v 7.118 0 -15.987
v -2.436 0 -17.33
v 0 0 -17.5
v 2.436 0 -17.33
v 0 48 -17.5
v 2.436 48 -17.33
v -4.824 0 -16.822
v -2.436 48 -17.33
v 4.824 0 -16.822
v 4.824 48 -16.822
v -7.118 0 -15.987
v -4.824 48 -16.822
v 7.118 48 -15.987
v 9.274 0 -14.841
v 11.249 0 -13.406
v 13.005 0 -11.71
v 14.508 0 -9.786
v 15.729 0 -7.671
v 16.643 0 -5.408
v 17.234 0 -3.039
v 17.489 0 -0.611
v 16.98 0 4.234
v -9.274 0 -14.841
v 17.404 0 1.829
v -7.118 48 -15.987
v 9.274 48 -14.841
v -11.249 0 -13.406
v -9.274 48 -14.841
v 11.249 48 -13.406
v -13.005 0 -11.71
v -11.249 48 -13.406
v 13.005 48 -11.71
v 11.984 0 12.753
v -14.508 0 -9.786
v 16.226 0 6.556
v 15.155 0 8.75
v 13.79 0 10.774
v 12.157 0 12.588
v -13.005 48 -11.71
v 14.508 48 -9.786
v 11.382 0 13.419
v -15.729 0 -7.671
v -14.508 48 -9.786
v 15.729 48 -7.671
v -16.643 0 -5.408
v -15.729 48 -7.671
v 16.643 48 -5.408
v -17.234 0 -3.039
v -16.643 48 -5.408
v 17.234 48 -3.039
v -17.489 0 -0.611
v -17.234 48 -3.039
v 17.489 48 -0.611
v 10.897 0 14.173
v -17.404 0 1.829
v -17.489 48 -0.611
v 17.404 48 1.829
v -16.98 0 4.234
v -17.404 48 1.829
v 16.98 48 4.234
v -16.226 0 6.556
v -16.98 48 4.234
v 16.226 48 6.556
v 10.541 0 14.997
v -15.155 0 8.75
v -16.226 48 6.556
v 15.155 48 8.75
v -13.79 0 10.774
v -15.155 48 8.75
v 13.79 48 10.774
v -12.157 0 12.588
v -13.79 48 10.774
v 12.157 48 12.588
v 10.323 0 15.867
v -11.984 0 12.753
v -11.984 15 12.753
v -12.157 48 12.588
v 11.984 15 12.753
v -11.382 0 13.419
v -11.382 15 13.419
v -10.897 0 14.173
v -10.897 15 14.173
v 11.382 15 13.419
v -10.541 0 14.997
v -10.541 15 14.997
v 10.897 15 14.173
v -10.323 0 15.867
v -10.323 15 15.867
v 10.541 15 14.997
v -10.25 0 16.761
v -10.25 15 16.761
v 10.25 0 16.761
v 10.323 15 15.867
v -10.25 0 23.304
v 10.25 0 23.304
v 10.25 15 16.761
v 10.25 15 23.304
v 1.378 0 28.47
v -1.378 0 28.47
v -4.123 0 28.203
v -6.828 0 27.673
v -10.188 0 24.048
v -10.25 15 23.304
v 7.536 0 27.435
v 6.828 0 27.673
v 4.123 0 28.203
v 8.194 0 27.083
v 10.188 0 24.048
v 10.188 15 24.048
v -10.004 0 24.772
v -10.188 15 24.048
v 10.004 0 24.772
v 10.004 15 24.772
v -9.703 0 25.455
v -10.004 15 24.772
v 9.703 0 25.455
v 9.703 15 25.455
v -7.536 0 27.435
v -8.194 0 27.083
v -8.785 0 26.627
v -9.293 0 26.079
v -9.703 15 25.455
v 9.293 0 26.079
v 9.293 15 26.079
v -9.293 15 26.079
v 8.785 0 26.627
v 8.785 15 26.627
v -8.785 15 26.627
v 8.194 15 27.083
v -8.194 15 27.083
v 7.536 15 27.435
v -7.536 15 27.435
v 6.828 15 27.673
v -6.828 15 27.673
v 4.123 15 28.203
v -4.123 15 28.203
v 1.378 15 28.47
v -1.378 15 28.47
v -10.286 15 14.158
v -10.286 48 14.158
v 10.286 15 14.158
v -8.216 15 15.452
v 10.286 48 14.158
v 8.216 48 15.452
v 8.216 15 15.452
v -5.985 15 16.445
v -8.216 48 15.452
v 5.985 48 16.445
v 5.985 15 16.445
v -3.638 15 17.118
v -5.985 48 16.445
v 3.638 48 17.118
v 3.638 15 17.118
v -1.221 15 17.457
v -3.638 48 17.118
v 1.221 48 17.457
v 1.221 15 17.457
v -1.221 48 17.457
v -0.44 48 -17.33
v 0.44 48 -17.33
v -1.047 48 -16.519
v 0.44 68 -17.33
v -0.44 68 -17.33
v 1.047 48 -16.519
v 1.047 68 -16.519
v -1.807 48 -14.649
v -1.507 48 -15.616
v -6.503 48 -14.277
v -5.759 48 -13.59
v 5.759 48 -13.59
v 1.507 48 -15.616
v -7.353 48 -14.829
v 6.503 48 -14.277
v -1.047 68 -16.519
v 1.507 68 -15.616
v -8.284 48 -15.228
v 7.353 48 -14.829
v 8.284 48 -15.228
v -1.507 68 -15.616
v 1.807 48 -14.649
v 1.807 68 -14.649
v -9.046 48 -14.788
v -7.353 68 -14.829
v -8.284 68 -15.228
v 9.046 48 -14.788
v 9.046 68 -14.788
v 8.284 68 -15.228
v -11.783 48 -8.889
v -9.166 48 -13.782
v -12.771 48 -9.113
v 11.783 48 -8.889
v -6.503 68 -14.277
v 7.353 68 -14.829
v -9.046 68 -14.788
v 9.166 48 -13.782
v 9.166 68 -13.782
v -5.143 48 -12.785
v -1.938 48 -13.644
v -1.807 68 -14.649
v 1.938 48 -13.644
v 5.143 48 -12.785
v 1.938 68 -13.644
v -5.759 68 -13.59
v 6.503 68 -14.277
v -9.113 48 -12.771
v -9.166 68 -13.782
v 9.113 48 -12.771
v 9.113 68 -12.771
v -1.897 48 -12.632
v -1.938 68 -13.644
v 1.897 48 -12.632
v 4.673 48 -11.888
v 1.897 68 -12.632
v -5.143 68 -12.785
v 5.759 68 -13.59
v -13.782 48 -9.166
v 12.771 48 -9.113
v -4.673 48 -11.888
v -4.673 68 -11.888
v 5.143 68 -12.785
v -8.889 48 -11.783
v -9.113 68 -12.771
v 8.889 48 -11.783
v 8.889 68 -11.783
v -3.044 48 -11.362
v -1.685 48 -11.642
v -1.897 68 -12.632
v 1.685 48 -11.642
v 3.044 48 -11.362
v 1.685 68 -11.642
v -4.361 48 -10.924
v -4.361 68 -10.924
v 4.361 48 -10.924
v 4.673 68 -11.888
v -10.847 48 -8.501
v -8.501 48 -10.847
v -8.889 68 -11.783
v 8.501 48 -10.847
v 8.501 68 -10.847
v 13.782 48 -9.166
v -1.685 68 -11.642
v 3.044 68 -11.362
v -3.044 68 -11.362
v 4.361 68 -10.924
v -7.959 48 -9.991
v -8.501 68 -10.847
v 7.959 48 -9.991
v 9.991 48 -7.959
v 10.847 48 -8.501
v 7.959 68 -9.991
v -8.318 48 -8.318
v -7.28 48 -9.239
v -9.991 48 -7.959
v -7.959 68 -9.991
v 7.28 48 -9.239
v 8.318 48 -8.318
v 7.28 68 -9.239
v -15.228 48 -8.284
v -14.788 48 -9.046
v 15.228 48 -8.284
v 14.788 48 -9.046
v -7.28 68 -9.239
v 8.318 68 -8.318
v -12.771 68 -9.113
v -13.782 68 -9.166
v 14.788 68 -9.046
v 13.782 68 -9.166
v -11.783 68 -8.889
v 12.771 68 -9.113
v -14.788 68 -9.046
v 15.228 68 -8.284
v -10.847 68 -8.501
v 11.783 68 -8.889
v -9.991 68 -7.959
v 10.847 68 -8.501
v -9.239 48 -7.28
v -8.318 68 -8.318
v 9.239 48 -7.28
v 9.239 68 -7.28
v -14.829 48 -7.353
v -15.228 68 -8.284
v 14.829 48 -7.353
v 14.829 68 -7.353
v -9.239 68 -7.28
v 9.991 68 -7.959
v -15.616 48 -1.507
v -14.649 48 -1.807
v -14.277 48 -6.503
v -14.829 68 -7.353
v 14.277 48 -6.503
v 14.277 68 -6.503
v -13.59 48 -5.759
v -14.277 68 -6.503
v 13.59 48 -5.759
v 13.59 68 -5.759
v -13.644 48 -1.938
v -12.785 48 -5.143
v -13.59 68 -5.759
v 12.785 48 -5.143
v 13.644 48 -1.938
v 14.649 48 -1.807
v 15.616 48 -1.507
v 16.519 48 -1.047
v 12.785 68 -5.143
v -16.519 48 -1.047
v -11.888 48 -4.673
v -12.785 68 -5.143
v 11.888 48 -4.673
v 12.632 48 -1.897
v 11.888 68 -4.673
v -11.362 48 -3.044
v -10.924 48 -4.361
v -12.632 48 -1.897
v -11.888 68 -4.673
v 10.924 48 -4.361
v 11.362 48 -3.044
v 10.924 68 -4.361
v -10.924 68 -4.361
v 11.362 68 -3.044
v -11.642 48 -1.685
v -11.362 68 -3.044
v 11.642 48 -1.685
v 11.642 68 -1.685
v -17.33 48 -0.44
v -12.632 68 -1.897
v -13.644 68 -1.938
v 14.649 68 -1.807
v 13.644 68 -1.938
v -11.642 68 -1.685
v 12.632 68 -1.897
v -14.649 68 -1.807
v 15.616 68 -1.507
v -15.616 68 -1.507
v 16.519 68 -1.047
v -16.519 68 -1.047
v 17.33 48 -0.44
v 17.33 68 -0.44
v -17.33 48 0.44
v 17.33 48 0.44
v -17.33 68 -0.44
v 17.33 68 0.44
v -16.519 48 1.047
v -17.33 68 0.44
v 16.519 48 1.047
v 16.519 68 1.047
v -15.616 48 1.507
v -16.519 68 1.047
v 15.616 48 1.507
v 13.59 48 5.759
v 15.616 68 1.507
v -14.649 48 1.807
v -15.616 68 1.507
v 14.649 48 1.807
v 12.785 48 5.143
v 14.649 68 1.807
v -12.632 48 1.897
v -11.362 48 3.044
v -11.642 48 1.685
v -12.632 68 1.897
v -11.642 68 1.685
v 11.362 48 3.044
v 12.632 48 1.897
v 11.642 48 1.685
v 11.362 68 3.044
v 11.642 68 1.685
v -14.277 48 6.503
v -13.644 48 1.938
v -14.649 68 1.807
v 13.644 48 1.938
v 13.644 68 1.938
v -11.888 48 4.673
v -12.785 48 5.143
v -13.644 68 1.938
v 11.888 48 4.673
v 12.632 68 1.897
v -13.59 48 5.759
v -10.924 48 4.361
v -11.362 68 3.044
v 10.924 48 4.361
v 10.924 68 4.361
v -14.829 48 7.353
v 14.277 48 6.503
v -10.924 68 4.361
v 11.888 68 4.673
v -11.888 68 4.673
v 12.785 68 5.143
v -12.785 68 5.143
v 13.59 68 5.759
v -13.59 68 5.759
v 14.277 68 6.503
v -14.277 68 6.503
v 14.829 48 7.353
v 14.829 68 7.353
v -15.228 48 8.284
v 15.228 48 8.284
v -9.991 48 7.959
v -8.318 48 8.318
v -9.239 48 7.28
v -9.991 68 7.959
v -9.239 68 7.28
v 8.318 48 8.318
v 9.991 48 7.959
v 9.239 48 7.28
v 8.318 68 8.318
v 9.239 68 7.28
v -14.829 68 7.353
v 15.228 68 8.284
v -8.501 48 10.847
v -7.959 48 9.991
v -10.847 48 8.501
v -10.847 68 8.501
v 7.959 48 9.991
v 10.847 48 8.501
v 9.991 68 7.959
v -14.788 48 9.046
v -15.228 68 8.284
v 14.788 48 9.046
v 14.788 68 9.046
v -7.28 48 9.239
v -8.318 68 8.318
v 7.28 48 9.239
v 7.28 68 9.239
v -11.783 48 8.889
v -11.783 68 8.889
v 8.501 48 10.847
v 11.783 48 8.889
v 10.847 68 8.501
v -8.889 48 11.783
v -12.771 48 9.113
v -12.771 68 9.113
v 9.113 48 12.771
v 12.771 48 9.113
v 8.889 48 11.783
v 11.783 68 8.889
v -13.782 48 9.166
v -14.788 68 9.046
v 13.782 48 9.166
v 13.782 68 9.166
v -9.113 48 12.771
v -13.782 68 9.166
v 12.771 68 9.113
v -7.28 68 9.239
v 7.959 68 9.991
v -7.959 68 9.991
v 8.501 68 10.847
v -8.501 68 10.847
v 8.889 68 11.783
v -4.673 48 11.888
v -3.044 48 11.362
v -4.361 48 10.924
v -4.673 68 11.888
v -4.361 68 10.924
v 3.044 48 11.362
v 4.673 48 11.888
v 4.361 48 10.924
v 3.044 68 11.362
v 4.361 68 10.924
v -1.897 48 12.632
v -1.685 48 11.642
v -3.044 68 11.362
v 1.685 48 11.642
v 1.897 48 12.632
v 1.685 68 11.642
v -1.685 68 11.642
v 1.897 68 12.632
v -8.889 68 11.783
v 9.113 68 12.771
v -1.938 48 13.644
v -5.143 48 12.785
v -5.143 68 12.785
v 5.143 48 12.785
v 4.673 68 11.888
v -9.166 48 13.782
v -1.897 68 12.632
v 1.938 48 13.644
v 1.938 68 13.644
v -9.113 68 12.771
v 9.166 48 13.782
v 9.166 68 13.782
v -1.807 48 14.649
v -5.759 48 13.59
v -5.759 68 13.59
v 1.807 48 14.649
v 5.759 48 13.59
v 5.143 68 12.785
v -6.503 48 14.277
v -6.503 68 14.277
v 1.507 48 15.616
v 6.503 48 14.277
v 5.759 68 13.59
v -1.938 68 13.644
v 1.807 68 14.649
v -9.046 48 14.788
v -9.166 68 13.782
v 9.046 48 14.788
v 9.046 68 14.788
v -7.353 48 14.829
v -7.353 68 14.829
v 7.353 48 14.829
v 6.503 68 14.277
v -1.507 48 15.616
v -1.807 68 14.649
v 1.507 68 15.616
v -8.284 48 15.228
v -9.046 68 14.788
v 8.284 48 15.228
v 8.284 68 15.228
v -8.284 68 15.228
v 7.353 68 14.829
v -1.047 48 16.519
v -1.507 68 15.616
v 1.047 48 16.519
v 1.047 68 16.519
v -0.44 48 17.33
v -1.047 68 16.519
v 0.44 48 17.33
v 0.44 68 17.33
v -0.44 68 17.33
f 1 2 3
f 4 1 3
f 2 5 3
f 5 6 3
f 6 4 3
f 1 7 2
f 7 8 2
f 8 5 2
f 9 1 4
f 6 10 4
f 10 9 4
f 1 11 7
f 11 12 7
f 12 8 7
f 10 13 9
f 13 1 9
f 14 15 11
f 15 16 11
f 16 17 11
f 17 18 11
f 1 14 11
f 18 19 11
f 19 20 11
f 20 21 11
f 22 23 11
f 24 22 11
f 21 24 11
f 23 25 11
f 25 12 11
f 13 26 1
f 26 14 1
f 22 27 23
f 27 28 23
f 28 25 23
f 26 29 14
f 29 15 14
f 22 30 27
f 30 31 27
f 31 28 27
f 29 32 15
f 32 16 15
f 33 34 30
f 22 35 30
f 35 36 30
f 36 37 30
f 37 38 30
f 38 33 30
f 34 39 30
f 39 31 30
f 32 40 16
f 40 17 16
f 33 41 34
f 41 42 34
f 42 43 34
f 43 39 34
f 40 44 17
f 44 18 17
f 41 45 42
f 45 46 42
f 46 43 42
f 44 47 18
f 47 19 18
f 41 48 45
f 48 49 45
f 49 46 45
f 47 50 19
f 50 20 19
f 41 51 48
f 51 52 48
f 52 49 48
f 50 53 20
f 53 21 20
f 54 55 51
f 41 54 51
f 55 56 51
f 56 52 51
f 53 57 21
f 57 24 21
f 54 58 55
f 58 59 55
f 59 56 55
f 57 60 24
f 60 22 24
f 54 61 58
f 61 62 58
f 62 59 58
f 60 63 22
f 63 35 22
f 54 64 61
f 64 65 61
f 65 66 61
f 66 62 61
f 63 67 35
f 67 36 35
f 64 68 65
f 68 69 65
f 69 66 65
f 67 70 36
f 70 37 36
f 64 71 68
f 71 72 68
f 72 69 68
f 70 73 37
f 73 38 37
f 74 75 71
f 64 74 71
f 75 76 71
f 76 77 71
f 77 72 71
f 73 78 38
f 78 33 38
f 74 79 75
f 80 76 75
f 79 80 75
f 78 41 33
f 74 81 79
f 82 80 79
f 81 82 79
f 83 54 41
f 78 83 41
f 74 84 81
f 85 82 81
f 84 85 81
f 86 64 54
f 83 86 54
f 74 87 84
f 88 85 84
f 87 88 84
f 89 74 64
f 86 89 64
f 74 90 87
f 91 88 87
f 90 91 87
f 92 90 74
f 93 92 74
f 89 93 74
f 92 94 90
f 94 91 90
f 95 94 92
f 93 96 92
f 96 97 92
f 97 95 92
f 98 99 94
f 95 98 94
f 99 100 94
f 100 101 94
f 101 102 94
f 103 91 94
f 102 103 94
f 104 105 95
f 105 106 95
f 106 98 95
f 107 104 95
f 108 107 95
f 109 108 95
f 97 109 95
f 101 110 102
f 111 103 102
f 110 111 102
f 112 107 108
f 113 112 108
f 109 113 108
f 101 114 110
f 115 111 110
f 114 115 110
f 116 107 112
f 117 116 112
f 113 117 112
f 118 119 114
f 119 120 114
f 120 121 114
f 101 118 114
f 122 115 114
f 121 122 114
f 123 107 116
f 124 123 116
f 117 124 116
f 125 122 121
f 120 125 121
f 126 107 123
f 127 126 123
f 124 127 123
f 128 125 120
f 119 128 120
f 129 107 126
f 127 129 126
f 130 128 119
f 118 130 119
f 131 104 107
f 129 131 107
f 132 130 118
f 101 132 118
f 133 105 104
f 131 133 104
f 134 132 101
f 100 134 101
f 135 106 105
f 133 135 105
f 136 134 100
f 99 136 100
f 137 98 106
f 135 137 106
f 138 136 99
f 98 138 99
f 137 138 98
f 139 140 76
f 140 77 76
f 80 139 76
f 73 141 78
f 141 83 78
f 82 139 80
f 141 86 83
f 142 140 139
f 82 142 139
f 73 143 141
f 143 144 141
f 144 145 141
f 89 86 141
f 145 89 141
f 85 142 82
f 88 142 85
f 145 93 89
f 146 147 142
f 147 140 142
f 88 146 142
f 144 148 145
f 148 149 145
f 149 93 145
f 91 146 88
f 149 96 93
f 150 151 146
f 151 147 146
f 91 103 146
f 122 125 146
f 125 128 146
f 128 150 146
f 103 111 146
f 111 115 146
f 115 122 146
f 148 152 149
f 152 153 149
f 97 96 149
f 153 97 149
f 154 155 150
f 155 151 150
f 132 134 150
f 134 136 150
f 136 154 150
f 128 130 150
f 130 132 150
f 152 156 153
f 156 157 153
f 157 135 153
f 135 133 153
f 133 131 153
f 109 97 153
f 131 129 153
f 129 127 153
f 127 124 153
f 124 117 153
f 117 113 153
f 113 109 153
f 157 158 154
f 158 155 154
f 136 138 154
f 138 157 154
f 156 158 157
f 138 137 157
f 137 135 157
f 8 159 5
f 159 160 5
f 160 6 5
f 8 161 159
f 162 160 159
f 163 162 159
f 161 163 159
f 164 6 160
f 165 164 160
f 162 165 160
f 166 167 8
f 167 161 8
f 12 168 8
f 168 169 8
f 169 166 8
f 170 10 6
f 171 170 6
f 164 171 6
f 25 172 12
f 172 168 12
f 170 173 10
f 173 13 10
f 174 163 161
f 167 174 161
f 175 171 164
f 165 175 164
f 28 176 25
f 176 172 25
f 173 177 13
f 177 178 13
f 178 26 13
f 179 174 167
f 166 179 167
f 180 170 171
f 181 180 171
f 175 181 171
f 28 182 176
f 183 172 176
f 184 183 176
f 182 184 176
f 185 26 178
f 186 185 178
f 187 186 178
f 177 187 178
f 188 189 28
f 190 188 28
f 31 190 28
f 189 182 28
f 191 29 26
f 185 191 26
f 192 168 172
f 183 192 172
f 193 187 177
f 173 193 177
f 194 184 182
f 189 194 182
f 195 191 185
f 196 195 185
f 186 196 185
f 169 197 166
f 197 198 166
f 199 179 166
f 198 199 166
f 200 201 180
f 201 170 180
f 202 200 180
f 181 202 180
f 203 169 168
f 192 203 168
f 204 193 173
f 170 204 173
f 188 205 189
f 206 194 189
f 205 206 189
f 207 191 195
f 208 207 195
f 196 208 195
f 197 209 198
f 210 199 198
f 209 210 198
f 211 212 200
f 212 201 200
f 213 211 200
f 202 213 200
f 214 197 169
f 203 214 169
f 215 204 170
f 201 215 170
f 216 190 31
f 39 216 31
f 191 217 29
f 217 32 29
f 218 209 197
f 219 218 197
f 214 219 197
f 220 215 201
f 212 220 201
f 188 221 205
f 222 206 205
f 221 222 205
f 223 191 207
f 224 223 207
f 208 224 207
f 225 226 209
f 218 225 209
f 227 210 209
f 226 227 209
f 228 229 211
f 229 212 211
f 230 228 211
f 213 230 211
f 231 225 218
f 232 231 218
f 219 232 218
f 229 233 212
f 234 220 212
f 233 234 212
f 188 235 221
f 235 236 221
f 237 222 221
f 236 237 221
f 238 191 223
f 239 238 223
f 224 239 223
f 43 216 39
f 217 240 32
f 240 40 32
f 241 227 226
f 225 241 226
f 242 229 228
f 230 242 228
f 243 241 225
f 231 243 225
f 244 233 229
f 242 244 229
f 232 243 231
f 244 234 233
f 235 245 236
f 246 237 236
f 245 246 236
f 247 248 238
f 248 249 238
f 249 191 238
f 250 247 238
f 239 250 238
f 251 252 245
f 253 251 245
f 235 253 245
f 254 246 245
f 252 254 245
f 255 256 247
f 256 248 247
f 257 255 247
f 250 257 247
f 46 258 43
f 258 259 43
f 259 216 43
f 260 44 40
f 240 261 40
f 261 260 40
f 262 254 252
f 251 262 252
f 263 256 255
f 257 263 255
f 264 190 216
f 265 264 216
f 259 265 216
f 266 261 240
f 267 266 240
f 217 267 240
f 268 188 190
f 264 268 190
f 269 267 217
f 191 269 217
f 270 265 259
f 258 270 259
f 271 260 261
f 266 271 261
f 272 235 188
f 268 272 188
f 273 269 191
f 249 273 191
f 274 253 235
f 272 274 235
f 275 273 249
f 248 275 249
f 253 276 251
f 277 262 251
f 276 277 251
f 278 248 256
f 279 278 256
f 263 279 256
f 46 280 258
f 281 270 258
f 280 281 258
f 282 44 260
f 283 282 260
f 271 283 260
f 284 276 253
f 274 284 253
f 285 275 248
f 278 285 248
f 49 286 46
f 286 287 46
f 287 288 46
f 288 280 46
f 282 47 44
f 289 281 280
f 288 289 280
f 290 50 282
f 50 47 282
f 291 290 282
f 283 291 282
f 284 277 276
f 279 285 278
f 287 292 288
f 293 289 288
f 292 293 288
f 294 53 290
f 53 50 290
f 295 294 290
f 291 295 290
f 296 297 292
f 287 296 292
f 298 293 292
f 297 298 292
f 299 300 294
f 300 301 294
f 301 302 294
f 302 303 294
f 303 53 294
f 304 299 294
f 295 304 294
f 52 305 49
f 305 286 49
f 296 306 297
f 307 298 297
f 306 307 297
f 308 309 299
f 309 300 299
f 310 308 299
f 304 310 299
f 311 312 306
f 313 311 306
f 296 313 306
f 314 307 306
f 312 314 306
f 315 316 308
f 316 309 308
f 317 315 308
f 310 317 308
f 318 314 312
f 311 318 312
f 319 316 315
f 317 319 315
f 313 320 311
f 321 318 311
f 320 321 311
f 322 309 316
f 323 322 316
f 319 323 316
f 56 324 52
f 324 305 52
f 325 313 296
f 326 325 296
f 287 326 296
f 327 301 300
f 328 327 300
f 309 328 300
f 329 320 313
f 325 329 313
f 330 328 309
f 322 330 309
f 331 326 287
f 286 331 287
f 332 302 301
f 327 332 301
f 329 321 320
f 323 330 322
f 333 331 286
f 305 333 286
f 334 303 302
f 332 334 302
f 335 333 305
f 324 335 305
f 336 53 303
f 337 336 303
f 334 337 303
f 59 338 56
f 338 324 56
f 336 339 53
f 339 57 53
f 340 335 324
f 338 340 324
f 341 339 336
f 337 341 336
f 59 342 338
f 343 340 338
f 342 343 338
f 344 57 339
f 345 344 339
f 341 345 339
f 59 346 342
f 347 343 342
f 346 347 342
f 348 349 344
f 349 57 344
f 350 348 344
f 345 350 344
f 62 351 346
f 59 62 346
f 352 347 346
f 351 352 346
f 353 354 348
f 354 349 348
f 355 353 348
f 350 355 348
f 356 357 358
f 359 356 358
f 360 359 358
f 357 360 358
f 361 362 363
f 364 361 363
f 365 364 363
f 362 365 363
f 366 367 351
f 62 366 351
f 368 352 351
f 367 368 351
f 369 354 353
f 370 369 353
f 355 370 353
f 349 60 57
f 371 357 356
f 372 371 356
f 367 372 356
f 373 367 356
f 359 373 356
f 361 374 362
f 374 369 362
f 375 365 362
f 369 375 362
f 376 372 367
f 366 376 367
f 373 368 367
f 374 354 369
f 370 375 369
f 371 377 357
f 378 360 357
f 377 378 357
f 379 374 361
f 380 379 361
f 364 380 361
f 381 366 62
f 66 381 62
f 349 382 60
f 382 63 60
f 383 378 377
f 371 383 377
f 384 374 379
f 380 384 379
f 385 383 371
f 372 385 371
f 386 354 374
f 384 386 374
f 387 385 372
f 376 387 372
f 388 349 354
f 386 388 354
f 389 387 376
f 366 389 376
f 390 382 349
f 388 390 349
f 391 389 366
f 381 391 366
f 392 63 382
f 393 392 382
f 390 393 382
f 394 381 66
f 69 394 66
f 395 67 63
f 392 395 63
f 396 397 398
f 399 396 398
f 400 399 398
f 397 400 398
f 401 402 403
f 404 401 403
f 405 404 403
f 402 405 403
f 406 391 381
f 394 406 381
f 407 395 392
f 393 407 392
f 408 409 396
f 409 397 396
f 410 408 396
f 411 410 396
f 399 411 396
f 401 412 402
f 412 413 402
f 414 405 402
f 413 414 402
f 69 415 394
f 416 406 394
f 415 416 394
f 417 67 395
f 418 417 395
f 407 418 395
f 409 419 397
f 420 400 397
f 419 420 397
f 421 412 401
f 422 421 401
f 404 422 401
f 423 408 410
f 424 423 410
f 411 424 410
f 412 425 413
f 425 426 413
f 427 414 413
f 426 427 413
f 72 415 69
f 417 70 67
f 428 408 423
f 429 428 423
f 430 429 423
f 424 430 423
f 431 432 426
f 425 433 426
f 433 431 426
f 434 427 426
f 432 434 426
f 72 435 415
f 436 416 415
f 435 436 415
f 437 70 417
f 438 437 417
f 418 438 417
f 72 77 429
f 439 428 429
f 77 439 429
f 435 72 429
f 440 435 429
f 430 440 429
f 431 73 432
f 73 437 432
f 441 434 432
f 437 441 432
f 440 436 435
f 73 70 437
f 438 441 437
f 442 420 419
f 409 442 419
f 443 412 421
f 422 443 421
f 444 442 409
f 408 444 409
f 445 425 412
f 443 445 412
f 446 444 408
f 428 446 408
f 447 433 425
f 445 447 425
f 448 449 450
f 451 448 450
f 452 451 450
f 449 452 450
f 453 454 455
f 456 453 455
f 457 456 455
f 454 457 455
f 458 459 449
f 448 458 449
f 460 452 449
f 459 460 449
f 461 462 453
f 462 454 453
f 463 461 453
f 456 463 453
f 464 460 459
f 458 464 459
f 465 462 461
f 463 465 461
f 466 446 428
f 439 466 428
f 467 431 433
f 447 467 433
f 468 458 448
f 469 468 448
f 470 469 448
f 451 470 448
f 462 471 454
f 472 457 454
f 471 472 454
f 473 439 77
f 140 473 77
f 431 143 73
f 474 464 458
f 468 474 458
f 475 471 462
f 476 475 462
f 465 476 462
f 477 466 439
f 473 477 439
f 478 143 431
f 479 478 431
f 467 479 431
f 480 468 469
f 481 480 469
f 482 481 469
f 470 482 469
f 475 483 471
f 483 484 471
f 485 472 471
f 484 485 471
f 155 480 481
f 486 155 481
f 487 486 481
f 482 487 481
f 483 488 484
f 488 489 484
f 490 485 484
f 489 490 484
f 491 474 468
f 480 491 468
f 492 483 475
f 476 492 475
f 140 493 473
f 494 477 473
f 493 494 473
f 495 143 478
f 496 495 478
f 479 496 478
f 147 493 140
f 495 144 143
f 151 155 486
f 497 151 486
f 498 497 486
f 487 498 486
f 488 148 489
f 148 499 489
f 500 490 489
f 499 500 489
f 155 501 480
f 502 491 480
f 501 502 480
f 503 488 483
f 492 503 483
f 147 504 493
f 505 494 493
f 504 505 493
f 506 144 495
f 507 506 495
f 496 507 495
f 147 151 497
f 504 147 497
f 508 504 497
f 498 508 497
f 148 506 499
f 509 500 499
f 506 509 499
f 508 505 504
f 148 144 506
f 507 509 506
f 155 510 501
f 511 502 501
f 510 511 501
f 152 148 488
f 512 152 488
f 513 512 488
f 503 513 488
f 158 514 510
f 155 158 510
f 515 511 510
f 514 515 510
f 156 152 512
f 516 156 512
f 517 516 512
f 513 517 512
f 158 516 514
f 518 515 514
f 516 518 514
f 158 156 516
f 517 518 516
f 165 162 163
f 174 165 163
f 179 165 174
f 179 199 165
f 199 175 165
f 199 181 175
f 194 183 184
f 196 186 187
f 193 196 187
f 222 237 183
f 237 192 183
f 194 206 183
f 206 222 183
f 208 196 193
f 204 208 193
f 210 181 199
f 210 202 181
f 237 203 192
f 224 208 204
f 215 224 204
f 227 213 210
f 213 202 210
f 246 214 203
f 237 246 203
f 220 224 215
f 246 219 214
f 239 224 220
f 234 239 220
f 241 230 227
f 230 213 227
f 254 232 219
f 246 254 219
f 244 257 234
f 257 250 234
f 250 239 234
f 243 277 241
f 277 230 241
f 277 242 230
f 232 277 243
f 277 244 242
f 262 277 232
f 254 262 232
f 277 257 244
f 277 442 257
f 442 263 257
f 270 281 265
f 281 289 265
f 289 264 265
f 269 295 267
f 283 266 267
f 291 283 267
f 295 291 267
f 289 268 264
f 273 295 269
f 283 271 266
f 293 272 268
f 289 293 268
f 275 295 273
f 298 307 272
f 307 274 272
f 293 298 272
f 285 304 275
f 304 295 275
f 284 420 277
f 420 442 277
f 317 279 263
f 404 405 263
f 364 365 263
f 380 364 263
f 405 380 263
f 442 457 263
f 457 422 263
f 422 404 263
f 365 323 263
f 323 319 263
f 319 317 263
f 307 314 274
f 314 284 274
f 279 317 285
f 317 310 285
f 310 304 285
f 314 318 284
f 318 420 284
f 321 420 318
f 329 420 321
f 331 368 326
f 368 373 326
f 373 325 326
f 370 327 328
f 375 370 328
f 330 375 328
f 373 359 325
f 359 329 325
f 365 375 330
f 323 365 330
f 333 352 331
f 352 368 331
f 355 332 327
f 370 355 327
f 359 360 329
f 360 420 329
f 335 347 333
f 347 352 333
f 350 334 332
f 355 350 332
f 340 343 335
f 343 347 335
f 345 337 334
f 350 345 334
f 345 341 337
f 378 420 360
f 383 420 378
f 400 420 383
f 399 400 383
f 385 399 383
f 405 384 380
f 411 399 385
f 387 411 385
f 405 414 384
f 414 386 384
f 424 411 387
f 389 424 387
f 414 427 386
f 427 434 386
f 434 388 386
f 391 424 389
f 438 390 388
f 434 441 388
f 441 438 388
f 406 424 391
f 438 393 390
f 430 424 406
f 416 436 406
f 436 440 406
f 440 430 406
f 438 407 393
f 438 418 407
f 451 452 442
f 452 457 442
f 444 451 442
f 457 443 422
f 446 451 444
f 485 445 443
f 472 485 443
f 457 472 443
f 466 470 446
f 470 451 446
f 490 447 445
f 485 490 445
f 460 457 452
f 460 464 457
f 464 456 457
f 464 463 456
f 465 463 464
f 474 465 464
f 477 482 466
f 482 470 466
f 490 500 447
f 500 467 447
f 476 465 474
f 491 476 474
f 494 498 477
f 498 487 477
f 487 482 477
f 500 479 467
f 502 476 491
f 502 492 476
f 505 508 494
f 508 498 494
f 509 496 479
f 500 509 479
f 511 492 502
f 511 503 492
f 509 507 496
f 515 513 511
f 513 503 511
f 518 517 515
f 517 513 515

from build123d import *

# Parameters (mm, degrees)
SKETCH1_R           = 17.5
BOSS_EXTRUDE1_DEPTH = 48
BOSS_EXTRUDE2_DEPTH = 15
BOSS_EXTRUDE3_DEPTH = 20


with BuildPart() as part:
    # Sketch1 → Boss-Extrude1 (new body)
    with BuildSketch(Plane(origin=(0, 0, 0), x_dir=(1, 0, 0), z_dir=(0, 1, 0))):
        Circle(SKETCH1_R)
    extrude(amount=BOSS_EXTRUDE1_DEPTH)

    # Sketch4 → Boss-Extrude2 (add)
    with BuildSketch(Plane.XZ):
        with BuildLine():
            Line((10.25, 23.304288773), (10.25, 16.761190292))
            ThreePointArc((10.25, 16.761190292), (10.701996736, 14.5776924), (11.983695652, 12.75307957))
            ThreePointArc((11.983695652, 12.75307957), (0, 17.5), (-11.983695652, 12.75307957))
            ThreePointArc((-11.983695652, 12.75307957), (-10.701996736, 14.5776924), (-10.25, 16.761190292))
            Line((-10.25, 16.761190292), (-10.25, 23.304288773))
            ThreePointArc((-10.25, 23.304288773), (-9.292662905, 26.079093189), (-6.827982425, 27.673265071))
            ThreePointArc((-6.827982425, 27.673265071), (0, 28.503174274), (6.827982425, 27.673265071))
            ThreePointArc((6.827982425, 27.673265071), (9.292662905, 26.079093189), (10.25, 23.304288773))
        make_face()
    extrude(amount=-BOSS_EXTRUDE2_DEPTH)

    # Sketch6 → Boss-Extrude3 (add)
    with BuildSketch(Plane(origin=(0, 48, 0), x_dir=(1, 0, 0), z_dir=(0, 1, 0))):
        with BuildLine():
            ThreePointArc((11.641553947, -1.685099566), (14.648632583, -1.806960077), (17.329910897, -0.440168758))
            ThreePointArc((17.329910897, -0.440168758), (17.3355, 0), (17.329910897, 0.440168758))
            ThreePointArc((17.329910897, 0.440168758), (14.648632583, 1.806960077), (11.641553947, 1.685099566))
            ThreePointArc((11.641553947, 1.685099566), (11.362069294, 3.044457292), (10.92443124, 4.361437941))
            ThreePointArc((10.92443124, 4.361437941), (13.589567986, 5.759442961), (15.228227462, 8.283758122))
            ThreePointArc((15.228227462, 8.283758122), (15.012983387, 8.66775), (14.788058703, 9.046152775))
            ThreePointArc((14.788058703, 9.046152775), (11.782607909, 8.889189622), (9.239331674, 7.280116005))
            ThreePointArc((9.239331674, 7.280116005), (8.317612002, 8.317612002), (7.280116005, 9.239331674))
            ThreePointArc((7.280116005, 9.239331674), (8.889189622, 11.782607909), (9.046152775, 14.788058703))
            ThreePointArc((9.046152775, 14.788058703), (8.66775, 15.012983387), (8.283758122, 15.228227462))
            ThreePointArc((8.283758122, 15.228227462), (5.759442961, 13.589567986), (4.361437941, 10.92443124))
            ThreePointArc((4.361437941, 10.92443124), (3.044457292, 11.362069294), (1.685099566, 11.641553947))
            ThreePointArc((1.685099566, 11.641553947), (1.806960077, 14.648632583), (0.440168758, 17.329910897))
            ThreePointArc((0.440168758, 17.329910897), (0, 17.3355), (-0.440168758, 17.329910897))
            ThreePointArc((-0.440168758, 17.329910897), (-1.806960077, 14.648632583), (-1.685099566, 11.641553947))
            ThreePointArc((-1.685099566, 11.641553947), (-3.044457292, 11.362069294), (-4.361437941, 10.92443124))
            ThreePointArc((-4.361437941, 10.92443124), (-5.759442961, 13.589567986), (-8.283758122, 15.228227462))
            ThreePointArc((-8.283758122, 15.228227462), (-8.66775, 15.012983387), (-9.046152775, 14.788058703))
            ThreePointArc((-9.046152775, 14.788058703), (-8.889189622, 11.782607909), (-7.280116005, 9.239331674))
            ThreePointArc((-7.280116005, 9.239331674), (-8.317612002, 8.317612002), (-9.239331674, 7.280116005))
            ThreePointArc((-9.239331674, 7.280116005), (-11.782607909, 8.889189622), (-14.788058703, 9.046152775))
            ThreePointArc((-14.788058703, 9.046152775), (-15.012983387, 8.66775), (-15.228227462, 8.283758122))
            ThreePointArc((-15.228227462, 8.283758122), (-13.589567986, 5.759442961), (-10.92443124, 4.361437941))
            ThreePointArc((-10.92443124, 4.361437941), (-11.362069294, 3.044457292), (-11.641553947, 1.685099566))
            ThreePointArc((-11.641553947, 1.685099566), (-14.648632583, 1.806960077), (-17.329910897, 0.440168758))
            ThreePointArc((-17.329910897, 0.440168758), (-17.3355, 0), (-17.329910897, -0.440168758))
            ThreePointArc((-17.329910897, -0.440168758), (-14.648632583, -1.806960077), (-11.641553947, -1.685099566))
            ThreePointArc((-11.641553947, -1.685099566), (-11.362069294, -3.044457292), (-10.92443124, -4.361437941))
            ThreePointArc((-10.92443124, -4.361437941), (-13.589567986, -5.759442961), (-15.228227462, -8.283758122))
            ThreePointArc((-15.228227462, -8.283758122), (-15.012983387, -8.66775), (-14.788058703, -9.046152775))
            ThreePointArc((-14.788058703, -9.046152775), (-11.782607909, -8.889189622), (-9.239331674, -7.280116005))
            ThreePointArc((-9.239331674, -7.280116005), (-8.317612002, -8.317612002), (-7.280116005, -9.239331674))
            ThreePointArc((-7.280116005, -9.239331674), (-8.889189622, -11.782607909), (-9.046152775, -14.788058703))
            ThreePointArc((-9.046152775, -14.788058703), (-8.66775, -15.012983387), (-8.283758122, -15.228227462))
            ThreePointArc((-8.283758122, -15.228227462), (-5.759442961, -13.589567986), (-4.361437941, -10.92443124))
            ThreePointArc((-4.361437941, -10.92443124), (-3.044457292, -11.362069294), (-1.685099566, -11.641553947))
            ThreePointArc((-1.685099566, -11.641553947), (-1.806960077, -14.648632583), (-0.440168758, -17.329910897))
            ThreePointArc((-0.440168758, -17.329910897), (0, -17.3355), (0.440168758, -17.329910897))
            ThreePointArc((0.440168758, -17.329910897), (1.806960077, -14.648632583), (1.685099566, -11.641553947))
            ThreePointArc((1.685099566, -11.641553947), (3.044457292, -11.362069294), (4.361437941, -10.92443124))
            ThreePointArc((4.361437941, -10.92443124), (5.759442961, -13.589567986), (8.283758122, -15.228227462))
            ThreePointArc((8.283758122, -15.228227462), (8.66775, -15.012983387), (9.046152775, -14.788058703))
            ThreePointArc((9.046152775, -14.788058703), (8.889189622, -11.782607909), (7.280116005, -9.239331674))
            ThreePointArc((7.280116005, -9.239331674), (8.317612002, -8.317612002), (9.239331674, -7.280116005))
            ThreePointArc((9.239331674, -7.280116005), (11.782607909, -8.889189622), (14.788058703, -9.046152775))
            ThreePointArc((14.788058703, -9.046152775), (15.012983387, -8.66775), (15.228227462, -8.283758122))
            ThreePointArc((15.228227462, -8.283758122), (13.589567986, -5.759442961), (10.92443124, -4.361437941))
            ThreePointArc((10.92443124, -4.361437941), (11.362069294, -3.044457292), (11.641553947, -1.685099566))
        make_face()
    extrude(amount=BOSS_EXTRUDE3_DEPTH)


solid = part.part
